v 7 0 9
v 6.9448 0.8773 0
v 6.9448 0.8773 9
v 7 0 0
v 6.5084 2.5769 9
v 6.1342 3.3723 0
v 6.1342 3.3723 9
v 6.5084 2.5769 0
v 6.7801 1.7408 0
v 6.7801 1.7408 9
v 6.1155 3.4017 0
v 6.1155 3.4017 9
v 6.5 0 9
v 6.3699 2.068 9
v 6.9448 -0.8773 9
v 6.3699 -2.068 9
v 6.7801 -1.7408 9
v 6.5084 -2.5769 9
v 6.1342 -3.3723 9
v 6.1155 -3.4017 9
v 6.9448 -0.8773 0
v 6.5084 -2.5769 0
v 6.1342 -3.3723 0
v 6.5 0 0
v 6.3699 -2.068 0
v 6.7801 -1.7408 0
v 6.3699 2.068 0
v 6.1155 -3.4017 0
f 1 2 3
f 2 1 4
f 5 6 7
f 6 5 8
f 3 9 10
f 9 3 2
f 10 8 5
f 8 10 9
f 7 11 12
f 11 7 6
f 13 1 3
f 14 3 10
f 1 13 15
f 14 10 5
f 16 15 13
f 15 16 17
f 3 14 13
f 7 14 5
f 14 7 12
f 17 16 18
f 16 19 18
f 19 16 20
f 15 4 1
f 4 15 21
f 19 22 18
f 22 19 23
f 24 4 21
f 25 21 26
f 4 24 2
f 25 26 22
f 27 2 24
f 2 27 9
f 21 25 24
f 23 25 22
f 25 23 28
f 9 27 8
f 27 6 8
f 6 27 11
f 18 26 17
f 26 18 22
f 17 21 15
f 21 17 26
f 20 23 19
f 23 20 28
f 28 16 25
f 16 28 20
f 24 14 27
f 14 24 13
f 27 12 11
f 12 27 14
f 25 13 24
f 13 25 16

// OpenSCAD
$fn = 50;


difference() {
	union() {
		cylinder(h = 9, r = 7.0000000000);
		translate(v = [-13.0000000000, 0, 0]) {
			cylinder(h = 9, r = 7.0000000000);
		}
	}
	union() {
		cylinder(h = 9, r = 3.2500000000);
		cylinder(h = 9, r = 1.8000000000);
		cylinder(h = 9, r = 1.8000000000);
		cylinder(h = 9, r = 1.8000000000);
		translate(v = [-17.5000000000, 0, 0]) {
			hull() {
				translate(v = [-3.7500000000, 0.0000000000, 0]) {
					cylinder(h = 9, r = 7.5000000000);
				}
				translate(v = [3.7500000000, 0.0000000000, 0]) {
					cylinder(h = 9, r = 7.5000000000);
				}
				translate(v = [-3.7500000000, -0.0000000000, 0]) {
					cylinder(h = 9, r = 7.5000000000);
				}
				translate(v = [3.7500000000, -0.0000000000, 0]) {
					cylinder(h = 9, r = 7.5000000000);
				}
			}
		}
		translate(v = [-10.0000000000, 0, 0.0000000000]) {
			cylinder(h = 9, r = 16.5000000000);
		}
	}
}
